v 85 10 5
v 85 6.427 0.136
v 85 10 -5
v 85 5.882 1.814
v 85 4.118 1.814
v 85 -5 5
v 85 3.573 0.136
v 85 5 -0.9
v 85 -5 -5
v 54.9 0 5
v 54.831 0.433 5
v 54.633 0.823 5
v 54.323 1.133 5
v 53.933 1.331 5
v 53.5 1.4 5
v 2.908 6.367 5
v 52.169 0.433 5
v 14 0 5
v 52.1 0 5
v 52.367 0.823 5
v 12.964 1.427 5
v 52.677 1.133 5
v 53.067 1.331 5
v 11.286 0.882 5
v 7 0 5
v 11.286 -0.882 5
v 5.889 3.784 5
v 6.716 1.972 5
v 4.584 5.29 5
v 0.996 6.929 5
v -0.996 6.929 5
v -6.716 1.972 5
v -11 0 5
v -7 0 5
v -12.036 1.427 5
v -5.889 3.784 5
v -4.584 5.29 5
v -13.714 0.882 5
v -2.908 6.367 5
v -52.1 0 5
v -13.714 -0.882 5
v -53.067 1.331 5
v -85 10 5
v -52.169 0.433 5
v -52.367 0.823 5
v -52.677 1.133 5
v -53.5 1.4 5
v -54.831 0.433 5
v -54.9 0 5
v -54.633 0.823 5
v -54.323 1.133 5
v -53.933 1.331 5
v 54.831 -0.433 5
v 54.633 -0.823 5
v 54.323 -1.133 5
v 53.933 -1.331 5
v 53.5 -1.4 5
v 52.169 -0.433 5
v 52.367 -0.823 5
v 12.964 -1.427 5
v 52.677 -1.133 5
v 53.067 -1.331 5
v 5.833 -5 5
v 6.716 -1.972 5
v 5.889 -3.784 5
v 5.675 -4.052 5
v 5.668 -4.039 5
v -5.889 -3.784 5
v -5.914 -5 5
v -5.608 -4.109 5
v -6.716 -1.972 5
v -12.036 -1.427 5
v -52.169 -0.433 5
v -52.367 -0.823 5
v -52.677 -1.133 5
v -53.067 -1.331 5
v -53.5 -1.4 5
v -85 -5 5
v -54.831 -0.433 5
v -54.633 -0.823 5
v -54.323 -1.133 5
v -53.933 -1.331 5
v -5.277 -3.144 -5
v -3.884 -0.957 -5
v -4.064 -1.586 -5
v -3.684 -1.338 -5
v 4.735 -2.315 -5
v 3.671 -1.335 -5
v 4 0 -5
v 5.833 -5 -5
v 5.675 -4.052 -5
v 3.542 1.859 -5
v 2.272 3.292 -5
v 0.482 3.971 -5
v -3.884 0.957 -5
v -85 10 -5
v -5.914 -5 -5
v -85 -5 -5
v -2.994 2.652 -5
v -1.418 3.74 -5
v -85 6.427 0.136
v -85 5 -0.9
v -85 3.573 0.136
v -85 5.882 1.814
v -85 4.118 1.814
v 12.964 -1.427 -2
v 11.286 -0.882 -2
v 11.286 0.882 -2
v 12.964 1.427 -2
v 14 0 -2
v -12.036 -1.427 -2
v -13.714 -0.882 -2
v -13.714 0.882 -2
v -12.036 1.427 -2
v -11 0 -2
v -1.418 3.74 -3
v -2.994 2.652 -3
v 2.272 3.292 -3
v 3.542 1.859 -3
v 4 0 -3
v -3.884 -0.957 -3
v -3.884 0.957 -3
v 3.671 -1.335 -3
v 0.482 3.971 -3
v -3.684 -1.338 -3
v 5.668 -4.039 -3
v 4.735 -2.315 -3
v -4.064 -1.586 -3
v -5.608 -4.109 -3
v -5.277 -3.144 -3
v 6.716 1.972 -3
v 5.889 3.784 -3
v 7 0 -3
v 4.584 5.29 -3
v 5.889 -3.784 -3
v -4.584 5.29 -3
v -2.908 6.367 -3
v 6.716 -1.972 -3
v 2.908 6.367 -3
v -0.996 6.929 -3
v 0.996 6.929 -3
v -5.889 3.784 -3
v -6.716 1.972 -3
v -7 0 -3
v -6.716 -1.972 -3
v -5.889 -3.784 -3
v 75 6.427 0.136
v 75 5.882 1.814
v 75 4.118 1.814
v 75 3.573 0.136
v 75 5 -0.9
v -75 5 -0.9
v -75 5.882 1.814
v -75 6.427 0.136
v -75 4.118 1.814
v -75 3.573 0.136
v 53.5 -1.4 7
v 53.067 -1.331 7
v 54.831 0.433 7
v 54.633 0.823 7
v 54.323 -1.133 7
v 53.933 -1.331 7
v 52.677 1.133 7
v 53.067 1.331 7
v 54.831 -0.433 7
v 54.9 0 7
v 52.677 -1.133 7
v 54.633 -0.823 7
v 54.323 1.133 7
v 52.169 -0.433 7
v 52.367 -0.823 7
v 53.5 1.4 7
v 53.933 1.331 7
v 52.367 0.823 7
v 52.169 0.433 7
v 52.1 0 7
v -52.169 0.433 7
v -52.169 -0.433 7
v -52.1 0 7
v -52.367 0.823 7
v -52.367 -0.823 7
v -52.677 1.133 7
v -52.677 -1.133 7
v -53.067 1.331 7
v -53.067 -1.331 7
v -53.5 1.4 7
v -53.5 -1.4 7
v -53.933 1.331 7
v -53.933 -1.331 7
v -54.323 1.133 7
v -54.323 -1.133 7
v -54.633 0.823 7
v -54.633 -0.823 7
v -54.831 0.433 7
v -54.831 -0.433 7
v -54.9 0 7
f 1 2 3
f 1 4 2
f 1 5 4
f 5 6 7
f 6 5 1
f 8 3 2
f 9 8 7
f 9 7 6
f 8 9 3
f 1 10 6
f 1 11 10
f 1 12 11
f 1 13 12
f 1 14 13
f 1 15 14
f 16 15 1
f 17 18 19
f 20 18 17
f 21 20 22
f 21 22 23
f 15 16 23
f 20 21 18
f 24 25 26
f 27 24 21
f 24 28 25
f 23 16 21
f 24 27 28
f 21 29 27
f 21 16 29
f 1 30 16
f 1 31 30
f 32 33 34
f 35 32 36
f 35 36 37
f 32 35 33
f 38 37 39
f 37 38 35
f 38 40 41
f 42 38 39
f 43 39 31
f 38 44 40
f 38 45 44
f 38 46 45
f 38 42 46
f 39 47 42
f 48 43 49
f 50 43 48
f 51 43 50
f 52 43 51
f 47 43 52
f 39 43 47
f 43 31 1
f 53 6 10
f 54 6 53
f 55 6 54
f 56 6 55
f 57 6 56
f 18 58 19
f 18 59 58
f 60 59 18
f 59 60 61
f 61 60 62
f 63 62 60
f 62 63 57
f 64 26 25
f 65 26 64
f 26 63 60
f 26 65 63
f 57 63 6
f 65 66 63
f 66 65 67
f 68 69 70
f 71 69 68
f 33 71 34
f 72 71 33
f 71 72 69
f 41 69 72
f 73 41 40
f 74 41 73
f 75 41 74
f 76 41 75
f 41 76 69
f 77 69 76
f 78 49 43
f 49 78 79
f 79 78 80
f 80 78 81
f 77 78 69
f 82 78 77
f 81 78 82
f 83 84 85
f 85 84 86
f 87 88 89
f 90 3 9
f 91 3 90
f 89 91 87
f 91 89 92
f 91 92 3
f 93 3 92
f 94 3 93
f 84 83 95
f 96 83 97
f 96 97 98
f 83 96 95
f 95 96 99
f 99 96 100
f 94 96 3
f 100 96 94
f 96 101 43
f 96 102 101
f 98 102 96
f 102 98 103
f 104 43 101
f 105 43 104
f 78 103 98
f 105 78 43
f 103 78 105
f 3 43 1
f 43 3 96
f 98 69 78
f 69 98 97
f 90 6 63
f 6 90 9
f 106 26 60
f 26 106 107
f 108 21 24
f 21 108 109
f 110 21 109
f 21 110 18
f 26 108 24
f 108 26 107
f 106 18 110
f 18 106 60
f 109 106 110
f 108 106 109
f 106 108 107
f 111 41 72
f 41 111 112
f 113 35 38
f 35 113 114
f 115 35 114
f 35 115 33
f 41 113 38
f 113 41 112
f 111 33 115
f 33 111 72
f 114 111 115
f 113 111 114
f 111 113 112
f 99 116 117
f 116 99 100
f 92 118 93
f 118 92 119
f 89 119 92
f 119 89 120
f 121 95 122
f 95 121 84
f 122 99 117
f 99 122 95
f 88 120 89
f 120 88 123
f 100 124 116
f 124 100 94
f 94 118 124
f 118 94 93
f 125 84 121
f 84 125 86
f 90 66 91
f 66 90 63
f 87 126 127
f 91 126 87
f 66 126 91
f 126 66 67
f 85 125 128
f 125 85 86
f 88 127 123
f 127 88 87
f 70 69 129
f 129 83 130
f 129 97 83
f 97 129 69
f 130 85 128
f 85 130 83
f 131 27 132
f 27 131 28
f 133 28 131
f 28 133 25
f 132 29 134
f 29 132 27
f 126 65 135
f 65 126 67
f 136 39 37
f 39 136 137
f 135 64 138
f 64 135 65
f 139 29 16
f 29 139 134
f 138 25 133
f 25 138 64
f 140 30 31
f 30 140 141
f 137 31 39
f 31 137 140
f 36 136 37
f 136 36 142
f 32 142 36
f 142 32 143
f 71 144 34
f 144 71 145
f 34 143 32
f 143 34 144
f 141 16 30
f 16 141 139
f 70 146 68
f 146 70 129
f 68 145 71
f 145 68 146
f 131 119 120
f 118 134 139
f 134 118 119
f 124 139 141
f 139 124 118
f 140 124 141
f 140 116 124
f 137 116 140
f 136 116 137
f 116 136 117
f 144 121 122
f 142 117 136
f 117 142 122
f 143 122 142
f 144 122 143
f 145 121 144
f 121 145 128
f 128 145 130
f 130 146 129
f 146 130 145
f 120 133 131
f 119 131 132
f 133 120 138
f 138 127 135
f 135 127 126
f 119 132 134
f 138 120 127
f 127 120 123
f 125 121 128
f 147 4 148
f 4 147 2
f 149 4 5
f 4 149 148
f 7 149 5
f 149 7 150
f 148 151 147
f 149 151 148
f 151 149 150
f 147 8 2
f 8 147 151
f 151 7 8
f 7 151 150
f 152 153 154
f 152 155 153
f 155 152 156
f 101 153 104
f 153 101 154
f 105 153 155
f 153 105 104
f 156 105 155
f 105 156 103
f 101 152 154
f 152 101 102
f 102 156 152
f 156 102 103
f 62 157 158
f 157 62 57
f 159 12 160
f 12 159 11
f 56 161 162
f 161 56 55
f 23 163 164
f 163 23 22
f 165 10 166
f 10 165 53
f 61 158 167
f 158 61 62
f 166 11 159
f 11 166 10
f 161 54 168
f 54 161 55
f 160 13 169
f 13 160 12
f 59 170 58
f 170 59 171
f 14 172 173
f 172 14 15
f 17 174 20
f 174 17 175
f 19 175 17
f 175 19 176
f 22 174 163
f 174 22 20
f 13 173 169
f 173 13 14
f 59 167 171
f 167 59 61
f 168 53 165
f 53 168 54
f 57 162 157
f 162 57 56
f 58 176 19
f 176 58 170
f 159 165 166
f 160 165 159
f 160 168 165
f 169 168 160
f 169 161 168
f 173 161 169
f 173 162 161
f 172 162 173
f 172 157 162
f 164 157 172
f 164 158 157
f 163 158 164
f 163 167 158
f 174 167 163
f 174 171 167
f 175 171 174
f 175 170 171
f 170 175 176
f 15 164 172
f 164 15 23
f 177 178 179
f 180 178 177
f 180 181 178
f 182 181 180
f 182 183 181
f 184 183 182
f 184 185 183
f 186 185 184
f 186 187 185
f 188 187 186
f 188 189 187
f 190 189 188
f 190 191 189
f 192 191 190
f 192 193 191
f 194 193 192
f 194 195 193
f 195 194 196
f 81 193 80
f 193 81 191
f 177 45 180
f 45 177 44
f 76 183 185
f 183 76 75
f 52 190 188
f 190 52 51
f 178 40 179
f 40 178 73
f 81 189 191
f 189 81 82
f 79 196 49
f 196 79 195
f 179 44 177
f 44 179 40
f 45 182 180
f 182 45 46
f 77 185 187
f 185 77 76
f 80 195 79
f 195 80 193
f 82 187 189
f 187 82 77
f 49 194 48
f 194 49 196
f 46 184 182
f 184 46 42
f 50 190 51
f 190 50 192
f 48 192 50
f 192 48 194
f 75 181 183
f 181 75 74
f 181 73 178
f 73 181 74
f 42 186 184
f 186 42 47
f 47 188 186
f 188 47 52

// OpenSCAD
union(){
    difference() {
        translate([0,2.5,0]) cube ([170, 15 , 10], center=true);
        translate([12.5, 0, 3]) cylinder(10, 1.5, 1.5, center=true);
        translate([-12.5, 0, 3]) cylinder(10, 1.5, 1.5, center=true);
        
        // wall nail hole
        translate([0,0,0]) cylinder(11, 4, 4, center=true);
        translate([0,-6,0]) cylinder(11, 6, 6, center=true);
        translate([0,0,2]) cylinder(10, 7, 7, center=true);
        
        // sideholes
        translate([170/2,5,0.6]) rotate([0,90.0]) cylinder(20, 1.5, 1.5, center=true);
        translate([-170/2,5,0.6]) rotate([0,90.0]) cylinder(20, 1.5, 1.5, center=true);
    }
    translate([53.5, 0, 2]) cylinder(10, 1.4, 1.4, center=true, $fn=20);
    translate([-53.5, 0, 2]) cylinder(10, 1.4, 1.4, center=true, $fn=20);
}
